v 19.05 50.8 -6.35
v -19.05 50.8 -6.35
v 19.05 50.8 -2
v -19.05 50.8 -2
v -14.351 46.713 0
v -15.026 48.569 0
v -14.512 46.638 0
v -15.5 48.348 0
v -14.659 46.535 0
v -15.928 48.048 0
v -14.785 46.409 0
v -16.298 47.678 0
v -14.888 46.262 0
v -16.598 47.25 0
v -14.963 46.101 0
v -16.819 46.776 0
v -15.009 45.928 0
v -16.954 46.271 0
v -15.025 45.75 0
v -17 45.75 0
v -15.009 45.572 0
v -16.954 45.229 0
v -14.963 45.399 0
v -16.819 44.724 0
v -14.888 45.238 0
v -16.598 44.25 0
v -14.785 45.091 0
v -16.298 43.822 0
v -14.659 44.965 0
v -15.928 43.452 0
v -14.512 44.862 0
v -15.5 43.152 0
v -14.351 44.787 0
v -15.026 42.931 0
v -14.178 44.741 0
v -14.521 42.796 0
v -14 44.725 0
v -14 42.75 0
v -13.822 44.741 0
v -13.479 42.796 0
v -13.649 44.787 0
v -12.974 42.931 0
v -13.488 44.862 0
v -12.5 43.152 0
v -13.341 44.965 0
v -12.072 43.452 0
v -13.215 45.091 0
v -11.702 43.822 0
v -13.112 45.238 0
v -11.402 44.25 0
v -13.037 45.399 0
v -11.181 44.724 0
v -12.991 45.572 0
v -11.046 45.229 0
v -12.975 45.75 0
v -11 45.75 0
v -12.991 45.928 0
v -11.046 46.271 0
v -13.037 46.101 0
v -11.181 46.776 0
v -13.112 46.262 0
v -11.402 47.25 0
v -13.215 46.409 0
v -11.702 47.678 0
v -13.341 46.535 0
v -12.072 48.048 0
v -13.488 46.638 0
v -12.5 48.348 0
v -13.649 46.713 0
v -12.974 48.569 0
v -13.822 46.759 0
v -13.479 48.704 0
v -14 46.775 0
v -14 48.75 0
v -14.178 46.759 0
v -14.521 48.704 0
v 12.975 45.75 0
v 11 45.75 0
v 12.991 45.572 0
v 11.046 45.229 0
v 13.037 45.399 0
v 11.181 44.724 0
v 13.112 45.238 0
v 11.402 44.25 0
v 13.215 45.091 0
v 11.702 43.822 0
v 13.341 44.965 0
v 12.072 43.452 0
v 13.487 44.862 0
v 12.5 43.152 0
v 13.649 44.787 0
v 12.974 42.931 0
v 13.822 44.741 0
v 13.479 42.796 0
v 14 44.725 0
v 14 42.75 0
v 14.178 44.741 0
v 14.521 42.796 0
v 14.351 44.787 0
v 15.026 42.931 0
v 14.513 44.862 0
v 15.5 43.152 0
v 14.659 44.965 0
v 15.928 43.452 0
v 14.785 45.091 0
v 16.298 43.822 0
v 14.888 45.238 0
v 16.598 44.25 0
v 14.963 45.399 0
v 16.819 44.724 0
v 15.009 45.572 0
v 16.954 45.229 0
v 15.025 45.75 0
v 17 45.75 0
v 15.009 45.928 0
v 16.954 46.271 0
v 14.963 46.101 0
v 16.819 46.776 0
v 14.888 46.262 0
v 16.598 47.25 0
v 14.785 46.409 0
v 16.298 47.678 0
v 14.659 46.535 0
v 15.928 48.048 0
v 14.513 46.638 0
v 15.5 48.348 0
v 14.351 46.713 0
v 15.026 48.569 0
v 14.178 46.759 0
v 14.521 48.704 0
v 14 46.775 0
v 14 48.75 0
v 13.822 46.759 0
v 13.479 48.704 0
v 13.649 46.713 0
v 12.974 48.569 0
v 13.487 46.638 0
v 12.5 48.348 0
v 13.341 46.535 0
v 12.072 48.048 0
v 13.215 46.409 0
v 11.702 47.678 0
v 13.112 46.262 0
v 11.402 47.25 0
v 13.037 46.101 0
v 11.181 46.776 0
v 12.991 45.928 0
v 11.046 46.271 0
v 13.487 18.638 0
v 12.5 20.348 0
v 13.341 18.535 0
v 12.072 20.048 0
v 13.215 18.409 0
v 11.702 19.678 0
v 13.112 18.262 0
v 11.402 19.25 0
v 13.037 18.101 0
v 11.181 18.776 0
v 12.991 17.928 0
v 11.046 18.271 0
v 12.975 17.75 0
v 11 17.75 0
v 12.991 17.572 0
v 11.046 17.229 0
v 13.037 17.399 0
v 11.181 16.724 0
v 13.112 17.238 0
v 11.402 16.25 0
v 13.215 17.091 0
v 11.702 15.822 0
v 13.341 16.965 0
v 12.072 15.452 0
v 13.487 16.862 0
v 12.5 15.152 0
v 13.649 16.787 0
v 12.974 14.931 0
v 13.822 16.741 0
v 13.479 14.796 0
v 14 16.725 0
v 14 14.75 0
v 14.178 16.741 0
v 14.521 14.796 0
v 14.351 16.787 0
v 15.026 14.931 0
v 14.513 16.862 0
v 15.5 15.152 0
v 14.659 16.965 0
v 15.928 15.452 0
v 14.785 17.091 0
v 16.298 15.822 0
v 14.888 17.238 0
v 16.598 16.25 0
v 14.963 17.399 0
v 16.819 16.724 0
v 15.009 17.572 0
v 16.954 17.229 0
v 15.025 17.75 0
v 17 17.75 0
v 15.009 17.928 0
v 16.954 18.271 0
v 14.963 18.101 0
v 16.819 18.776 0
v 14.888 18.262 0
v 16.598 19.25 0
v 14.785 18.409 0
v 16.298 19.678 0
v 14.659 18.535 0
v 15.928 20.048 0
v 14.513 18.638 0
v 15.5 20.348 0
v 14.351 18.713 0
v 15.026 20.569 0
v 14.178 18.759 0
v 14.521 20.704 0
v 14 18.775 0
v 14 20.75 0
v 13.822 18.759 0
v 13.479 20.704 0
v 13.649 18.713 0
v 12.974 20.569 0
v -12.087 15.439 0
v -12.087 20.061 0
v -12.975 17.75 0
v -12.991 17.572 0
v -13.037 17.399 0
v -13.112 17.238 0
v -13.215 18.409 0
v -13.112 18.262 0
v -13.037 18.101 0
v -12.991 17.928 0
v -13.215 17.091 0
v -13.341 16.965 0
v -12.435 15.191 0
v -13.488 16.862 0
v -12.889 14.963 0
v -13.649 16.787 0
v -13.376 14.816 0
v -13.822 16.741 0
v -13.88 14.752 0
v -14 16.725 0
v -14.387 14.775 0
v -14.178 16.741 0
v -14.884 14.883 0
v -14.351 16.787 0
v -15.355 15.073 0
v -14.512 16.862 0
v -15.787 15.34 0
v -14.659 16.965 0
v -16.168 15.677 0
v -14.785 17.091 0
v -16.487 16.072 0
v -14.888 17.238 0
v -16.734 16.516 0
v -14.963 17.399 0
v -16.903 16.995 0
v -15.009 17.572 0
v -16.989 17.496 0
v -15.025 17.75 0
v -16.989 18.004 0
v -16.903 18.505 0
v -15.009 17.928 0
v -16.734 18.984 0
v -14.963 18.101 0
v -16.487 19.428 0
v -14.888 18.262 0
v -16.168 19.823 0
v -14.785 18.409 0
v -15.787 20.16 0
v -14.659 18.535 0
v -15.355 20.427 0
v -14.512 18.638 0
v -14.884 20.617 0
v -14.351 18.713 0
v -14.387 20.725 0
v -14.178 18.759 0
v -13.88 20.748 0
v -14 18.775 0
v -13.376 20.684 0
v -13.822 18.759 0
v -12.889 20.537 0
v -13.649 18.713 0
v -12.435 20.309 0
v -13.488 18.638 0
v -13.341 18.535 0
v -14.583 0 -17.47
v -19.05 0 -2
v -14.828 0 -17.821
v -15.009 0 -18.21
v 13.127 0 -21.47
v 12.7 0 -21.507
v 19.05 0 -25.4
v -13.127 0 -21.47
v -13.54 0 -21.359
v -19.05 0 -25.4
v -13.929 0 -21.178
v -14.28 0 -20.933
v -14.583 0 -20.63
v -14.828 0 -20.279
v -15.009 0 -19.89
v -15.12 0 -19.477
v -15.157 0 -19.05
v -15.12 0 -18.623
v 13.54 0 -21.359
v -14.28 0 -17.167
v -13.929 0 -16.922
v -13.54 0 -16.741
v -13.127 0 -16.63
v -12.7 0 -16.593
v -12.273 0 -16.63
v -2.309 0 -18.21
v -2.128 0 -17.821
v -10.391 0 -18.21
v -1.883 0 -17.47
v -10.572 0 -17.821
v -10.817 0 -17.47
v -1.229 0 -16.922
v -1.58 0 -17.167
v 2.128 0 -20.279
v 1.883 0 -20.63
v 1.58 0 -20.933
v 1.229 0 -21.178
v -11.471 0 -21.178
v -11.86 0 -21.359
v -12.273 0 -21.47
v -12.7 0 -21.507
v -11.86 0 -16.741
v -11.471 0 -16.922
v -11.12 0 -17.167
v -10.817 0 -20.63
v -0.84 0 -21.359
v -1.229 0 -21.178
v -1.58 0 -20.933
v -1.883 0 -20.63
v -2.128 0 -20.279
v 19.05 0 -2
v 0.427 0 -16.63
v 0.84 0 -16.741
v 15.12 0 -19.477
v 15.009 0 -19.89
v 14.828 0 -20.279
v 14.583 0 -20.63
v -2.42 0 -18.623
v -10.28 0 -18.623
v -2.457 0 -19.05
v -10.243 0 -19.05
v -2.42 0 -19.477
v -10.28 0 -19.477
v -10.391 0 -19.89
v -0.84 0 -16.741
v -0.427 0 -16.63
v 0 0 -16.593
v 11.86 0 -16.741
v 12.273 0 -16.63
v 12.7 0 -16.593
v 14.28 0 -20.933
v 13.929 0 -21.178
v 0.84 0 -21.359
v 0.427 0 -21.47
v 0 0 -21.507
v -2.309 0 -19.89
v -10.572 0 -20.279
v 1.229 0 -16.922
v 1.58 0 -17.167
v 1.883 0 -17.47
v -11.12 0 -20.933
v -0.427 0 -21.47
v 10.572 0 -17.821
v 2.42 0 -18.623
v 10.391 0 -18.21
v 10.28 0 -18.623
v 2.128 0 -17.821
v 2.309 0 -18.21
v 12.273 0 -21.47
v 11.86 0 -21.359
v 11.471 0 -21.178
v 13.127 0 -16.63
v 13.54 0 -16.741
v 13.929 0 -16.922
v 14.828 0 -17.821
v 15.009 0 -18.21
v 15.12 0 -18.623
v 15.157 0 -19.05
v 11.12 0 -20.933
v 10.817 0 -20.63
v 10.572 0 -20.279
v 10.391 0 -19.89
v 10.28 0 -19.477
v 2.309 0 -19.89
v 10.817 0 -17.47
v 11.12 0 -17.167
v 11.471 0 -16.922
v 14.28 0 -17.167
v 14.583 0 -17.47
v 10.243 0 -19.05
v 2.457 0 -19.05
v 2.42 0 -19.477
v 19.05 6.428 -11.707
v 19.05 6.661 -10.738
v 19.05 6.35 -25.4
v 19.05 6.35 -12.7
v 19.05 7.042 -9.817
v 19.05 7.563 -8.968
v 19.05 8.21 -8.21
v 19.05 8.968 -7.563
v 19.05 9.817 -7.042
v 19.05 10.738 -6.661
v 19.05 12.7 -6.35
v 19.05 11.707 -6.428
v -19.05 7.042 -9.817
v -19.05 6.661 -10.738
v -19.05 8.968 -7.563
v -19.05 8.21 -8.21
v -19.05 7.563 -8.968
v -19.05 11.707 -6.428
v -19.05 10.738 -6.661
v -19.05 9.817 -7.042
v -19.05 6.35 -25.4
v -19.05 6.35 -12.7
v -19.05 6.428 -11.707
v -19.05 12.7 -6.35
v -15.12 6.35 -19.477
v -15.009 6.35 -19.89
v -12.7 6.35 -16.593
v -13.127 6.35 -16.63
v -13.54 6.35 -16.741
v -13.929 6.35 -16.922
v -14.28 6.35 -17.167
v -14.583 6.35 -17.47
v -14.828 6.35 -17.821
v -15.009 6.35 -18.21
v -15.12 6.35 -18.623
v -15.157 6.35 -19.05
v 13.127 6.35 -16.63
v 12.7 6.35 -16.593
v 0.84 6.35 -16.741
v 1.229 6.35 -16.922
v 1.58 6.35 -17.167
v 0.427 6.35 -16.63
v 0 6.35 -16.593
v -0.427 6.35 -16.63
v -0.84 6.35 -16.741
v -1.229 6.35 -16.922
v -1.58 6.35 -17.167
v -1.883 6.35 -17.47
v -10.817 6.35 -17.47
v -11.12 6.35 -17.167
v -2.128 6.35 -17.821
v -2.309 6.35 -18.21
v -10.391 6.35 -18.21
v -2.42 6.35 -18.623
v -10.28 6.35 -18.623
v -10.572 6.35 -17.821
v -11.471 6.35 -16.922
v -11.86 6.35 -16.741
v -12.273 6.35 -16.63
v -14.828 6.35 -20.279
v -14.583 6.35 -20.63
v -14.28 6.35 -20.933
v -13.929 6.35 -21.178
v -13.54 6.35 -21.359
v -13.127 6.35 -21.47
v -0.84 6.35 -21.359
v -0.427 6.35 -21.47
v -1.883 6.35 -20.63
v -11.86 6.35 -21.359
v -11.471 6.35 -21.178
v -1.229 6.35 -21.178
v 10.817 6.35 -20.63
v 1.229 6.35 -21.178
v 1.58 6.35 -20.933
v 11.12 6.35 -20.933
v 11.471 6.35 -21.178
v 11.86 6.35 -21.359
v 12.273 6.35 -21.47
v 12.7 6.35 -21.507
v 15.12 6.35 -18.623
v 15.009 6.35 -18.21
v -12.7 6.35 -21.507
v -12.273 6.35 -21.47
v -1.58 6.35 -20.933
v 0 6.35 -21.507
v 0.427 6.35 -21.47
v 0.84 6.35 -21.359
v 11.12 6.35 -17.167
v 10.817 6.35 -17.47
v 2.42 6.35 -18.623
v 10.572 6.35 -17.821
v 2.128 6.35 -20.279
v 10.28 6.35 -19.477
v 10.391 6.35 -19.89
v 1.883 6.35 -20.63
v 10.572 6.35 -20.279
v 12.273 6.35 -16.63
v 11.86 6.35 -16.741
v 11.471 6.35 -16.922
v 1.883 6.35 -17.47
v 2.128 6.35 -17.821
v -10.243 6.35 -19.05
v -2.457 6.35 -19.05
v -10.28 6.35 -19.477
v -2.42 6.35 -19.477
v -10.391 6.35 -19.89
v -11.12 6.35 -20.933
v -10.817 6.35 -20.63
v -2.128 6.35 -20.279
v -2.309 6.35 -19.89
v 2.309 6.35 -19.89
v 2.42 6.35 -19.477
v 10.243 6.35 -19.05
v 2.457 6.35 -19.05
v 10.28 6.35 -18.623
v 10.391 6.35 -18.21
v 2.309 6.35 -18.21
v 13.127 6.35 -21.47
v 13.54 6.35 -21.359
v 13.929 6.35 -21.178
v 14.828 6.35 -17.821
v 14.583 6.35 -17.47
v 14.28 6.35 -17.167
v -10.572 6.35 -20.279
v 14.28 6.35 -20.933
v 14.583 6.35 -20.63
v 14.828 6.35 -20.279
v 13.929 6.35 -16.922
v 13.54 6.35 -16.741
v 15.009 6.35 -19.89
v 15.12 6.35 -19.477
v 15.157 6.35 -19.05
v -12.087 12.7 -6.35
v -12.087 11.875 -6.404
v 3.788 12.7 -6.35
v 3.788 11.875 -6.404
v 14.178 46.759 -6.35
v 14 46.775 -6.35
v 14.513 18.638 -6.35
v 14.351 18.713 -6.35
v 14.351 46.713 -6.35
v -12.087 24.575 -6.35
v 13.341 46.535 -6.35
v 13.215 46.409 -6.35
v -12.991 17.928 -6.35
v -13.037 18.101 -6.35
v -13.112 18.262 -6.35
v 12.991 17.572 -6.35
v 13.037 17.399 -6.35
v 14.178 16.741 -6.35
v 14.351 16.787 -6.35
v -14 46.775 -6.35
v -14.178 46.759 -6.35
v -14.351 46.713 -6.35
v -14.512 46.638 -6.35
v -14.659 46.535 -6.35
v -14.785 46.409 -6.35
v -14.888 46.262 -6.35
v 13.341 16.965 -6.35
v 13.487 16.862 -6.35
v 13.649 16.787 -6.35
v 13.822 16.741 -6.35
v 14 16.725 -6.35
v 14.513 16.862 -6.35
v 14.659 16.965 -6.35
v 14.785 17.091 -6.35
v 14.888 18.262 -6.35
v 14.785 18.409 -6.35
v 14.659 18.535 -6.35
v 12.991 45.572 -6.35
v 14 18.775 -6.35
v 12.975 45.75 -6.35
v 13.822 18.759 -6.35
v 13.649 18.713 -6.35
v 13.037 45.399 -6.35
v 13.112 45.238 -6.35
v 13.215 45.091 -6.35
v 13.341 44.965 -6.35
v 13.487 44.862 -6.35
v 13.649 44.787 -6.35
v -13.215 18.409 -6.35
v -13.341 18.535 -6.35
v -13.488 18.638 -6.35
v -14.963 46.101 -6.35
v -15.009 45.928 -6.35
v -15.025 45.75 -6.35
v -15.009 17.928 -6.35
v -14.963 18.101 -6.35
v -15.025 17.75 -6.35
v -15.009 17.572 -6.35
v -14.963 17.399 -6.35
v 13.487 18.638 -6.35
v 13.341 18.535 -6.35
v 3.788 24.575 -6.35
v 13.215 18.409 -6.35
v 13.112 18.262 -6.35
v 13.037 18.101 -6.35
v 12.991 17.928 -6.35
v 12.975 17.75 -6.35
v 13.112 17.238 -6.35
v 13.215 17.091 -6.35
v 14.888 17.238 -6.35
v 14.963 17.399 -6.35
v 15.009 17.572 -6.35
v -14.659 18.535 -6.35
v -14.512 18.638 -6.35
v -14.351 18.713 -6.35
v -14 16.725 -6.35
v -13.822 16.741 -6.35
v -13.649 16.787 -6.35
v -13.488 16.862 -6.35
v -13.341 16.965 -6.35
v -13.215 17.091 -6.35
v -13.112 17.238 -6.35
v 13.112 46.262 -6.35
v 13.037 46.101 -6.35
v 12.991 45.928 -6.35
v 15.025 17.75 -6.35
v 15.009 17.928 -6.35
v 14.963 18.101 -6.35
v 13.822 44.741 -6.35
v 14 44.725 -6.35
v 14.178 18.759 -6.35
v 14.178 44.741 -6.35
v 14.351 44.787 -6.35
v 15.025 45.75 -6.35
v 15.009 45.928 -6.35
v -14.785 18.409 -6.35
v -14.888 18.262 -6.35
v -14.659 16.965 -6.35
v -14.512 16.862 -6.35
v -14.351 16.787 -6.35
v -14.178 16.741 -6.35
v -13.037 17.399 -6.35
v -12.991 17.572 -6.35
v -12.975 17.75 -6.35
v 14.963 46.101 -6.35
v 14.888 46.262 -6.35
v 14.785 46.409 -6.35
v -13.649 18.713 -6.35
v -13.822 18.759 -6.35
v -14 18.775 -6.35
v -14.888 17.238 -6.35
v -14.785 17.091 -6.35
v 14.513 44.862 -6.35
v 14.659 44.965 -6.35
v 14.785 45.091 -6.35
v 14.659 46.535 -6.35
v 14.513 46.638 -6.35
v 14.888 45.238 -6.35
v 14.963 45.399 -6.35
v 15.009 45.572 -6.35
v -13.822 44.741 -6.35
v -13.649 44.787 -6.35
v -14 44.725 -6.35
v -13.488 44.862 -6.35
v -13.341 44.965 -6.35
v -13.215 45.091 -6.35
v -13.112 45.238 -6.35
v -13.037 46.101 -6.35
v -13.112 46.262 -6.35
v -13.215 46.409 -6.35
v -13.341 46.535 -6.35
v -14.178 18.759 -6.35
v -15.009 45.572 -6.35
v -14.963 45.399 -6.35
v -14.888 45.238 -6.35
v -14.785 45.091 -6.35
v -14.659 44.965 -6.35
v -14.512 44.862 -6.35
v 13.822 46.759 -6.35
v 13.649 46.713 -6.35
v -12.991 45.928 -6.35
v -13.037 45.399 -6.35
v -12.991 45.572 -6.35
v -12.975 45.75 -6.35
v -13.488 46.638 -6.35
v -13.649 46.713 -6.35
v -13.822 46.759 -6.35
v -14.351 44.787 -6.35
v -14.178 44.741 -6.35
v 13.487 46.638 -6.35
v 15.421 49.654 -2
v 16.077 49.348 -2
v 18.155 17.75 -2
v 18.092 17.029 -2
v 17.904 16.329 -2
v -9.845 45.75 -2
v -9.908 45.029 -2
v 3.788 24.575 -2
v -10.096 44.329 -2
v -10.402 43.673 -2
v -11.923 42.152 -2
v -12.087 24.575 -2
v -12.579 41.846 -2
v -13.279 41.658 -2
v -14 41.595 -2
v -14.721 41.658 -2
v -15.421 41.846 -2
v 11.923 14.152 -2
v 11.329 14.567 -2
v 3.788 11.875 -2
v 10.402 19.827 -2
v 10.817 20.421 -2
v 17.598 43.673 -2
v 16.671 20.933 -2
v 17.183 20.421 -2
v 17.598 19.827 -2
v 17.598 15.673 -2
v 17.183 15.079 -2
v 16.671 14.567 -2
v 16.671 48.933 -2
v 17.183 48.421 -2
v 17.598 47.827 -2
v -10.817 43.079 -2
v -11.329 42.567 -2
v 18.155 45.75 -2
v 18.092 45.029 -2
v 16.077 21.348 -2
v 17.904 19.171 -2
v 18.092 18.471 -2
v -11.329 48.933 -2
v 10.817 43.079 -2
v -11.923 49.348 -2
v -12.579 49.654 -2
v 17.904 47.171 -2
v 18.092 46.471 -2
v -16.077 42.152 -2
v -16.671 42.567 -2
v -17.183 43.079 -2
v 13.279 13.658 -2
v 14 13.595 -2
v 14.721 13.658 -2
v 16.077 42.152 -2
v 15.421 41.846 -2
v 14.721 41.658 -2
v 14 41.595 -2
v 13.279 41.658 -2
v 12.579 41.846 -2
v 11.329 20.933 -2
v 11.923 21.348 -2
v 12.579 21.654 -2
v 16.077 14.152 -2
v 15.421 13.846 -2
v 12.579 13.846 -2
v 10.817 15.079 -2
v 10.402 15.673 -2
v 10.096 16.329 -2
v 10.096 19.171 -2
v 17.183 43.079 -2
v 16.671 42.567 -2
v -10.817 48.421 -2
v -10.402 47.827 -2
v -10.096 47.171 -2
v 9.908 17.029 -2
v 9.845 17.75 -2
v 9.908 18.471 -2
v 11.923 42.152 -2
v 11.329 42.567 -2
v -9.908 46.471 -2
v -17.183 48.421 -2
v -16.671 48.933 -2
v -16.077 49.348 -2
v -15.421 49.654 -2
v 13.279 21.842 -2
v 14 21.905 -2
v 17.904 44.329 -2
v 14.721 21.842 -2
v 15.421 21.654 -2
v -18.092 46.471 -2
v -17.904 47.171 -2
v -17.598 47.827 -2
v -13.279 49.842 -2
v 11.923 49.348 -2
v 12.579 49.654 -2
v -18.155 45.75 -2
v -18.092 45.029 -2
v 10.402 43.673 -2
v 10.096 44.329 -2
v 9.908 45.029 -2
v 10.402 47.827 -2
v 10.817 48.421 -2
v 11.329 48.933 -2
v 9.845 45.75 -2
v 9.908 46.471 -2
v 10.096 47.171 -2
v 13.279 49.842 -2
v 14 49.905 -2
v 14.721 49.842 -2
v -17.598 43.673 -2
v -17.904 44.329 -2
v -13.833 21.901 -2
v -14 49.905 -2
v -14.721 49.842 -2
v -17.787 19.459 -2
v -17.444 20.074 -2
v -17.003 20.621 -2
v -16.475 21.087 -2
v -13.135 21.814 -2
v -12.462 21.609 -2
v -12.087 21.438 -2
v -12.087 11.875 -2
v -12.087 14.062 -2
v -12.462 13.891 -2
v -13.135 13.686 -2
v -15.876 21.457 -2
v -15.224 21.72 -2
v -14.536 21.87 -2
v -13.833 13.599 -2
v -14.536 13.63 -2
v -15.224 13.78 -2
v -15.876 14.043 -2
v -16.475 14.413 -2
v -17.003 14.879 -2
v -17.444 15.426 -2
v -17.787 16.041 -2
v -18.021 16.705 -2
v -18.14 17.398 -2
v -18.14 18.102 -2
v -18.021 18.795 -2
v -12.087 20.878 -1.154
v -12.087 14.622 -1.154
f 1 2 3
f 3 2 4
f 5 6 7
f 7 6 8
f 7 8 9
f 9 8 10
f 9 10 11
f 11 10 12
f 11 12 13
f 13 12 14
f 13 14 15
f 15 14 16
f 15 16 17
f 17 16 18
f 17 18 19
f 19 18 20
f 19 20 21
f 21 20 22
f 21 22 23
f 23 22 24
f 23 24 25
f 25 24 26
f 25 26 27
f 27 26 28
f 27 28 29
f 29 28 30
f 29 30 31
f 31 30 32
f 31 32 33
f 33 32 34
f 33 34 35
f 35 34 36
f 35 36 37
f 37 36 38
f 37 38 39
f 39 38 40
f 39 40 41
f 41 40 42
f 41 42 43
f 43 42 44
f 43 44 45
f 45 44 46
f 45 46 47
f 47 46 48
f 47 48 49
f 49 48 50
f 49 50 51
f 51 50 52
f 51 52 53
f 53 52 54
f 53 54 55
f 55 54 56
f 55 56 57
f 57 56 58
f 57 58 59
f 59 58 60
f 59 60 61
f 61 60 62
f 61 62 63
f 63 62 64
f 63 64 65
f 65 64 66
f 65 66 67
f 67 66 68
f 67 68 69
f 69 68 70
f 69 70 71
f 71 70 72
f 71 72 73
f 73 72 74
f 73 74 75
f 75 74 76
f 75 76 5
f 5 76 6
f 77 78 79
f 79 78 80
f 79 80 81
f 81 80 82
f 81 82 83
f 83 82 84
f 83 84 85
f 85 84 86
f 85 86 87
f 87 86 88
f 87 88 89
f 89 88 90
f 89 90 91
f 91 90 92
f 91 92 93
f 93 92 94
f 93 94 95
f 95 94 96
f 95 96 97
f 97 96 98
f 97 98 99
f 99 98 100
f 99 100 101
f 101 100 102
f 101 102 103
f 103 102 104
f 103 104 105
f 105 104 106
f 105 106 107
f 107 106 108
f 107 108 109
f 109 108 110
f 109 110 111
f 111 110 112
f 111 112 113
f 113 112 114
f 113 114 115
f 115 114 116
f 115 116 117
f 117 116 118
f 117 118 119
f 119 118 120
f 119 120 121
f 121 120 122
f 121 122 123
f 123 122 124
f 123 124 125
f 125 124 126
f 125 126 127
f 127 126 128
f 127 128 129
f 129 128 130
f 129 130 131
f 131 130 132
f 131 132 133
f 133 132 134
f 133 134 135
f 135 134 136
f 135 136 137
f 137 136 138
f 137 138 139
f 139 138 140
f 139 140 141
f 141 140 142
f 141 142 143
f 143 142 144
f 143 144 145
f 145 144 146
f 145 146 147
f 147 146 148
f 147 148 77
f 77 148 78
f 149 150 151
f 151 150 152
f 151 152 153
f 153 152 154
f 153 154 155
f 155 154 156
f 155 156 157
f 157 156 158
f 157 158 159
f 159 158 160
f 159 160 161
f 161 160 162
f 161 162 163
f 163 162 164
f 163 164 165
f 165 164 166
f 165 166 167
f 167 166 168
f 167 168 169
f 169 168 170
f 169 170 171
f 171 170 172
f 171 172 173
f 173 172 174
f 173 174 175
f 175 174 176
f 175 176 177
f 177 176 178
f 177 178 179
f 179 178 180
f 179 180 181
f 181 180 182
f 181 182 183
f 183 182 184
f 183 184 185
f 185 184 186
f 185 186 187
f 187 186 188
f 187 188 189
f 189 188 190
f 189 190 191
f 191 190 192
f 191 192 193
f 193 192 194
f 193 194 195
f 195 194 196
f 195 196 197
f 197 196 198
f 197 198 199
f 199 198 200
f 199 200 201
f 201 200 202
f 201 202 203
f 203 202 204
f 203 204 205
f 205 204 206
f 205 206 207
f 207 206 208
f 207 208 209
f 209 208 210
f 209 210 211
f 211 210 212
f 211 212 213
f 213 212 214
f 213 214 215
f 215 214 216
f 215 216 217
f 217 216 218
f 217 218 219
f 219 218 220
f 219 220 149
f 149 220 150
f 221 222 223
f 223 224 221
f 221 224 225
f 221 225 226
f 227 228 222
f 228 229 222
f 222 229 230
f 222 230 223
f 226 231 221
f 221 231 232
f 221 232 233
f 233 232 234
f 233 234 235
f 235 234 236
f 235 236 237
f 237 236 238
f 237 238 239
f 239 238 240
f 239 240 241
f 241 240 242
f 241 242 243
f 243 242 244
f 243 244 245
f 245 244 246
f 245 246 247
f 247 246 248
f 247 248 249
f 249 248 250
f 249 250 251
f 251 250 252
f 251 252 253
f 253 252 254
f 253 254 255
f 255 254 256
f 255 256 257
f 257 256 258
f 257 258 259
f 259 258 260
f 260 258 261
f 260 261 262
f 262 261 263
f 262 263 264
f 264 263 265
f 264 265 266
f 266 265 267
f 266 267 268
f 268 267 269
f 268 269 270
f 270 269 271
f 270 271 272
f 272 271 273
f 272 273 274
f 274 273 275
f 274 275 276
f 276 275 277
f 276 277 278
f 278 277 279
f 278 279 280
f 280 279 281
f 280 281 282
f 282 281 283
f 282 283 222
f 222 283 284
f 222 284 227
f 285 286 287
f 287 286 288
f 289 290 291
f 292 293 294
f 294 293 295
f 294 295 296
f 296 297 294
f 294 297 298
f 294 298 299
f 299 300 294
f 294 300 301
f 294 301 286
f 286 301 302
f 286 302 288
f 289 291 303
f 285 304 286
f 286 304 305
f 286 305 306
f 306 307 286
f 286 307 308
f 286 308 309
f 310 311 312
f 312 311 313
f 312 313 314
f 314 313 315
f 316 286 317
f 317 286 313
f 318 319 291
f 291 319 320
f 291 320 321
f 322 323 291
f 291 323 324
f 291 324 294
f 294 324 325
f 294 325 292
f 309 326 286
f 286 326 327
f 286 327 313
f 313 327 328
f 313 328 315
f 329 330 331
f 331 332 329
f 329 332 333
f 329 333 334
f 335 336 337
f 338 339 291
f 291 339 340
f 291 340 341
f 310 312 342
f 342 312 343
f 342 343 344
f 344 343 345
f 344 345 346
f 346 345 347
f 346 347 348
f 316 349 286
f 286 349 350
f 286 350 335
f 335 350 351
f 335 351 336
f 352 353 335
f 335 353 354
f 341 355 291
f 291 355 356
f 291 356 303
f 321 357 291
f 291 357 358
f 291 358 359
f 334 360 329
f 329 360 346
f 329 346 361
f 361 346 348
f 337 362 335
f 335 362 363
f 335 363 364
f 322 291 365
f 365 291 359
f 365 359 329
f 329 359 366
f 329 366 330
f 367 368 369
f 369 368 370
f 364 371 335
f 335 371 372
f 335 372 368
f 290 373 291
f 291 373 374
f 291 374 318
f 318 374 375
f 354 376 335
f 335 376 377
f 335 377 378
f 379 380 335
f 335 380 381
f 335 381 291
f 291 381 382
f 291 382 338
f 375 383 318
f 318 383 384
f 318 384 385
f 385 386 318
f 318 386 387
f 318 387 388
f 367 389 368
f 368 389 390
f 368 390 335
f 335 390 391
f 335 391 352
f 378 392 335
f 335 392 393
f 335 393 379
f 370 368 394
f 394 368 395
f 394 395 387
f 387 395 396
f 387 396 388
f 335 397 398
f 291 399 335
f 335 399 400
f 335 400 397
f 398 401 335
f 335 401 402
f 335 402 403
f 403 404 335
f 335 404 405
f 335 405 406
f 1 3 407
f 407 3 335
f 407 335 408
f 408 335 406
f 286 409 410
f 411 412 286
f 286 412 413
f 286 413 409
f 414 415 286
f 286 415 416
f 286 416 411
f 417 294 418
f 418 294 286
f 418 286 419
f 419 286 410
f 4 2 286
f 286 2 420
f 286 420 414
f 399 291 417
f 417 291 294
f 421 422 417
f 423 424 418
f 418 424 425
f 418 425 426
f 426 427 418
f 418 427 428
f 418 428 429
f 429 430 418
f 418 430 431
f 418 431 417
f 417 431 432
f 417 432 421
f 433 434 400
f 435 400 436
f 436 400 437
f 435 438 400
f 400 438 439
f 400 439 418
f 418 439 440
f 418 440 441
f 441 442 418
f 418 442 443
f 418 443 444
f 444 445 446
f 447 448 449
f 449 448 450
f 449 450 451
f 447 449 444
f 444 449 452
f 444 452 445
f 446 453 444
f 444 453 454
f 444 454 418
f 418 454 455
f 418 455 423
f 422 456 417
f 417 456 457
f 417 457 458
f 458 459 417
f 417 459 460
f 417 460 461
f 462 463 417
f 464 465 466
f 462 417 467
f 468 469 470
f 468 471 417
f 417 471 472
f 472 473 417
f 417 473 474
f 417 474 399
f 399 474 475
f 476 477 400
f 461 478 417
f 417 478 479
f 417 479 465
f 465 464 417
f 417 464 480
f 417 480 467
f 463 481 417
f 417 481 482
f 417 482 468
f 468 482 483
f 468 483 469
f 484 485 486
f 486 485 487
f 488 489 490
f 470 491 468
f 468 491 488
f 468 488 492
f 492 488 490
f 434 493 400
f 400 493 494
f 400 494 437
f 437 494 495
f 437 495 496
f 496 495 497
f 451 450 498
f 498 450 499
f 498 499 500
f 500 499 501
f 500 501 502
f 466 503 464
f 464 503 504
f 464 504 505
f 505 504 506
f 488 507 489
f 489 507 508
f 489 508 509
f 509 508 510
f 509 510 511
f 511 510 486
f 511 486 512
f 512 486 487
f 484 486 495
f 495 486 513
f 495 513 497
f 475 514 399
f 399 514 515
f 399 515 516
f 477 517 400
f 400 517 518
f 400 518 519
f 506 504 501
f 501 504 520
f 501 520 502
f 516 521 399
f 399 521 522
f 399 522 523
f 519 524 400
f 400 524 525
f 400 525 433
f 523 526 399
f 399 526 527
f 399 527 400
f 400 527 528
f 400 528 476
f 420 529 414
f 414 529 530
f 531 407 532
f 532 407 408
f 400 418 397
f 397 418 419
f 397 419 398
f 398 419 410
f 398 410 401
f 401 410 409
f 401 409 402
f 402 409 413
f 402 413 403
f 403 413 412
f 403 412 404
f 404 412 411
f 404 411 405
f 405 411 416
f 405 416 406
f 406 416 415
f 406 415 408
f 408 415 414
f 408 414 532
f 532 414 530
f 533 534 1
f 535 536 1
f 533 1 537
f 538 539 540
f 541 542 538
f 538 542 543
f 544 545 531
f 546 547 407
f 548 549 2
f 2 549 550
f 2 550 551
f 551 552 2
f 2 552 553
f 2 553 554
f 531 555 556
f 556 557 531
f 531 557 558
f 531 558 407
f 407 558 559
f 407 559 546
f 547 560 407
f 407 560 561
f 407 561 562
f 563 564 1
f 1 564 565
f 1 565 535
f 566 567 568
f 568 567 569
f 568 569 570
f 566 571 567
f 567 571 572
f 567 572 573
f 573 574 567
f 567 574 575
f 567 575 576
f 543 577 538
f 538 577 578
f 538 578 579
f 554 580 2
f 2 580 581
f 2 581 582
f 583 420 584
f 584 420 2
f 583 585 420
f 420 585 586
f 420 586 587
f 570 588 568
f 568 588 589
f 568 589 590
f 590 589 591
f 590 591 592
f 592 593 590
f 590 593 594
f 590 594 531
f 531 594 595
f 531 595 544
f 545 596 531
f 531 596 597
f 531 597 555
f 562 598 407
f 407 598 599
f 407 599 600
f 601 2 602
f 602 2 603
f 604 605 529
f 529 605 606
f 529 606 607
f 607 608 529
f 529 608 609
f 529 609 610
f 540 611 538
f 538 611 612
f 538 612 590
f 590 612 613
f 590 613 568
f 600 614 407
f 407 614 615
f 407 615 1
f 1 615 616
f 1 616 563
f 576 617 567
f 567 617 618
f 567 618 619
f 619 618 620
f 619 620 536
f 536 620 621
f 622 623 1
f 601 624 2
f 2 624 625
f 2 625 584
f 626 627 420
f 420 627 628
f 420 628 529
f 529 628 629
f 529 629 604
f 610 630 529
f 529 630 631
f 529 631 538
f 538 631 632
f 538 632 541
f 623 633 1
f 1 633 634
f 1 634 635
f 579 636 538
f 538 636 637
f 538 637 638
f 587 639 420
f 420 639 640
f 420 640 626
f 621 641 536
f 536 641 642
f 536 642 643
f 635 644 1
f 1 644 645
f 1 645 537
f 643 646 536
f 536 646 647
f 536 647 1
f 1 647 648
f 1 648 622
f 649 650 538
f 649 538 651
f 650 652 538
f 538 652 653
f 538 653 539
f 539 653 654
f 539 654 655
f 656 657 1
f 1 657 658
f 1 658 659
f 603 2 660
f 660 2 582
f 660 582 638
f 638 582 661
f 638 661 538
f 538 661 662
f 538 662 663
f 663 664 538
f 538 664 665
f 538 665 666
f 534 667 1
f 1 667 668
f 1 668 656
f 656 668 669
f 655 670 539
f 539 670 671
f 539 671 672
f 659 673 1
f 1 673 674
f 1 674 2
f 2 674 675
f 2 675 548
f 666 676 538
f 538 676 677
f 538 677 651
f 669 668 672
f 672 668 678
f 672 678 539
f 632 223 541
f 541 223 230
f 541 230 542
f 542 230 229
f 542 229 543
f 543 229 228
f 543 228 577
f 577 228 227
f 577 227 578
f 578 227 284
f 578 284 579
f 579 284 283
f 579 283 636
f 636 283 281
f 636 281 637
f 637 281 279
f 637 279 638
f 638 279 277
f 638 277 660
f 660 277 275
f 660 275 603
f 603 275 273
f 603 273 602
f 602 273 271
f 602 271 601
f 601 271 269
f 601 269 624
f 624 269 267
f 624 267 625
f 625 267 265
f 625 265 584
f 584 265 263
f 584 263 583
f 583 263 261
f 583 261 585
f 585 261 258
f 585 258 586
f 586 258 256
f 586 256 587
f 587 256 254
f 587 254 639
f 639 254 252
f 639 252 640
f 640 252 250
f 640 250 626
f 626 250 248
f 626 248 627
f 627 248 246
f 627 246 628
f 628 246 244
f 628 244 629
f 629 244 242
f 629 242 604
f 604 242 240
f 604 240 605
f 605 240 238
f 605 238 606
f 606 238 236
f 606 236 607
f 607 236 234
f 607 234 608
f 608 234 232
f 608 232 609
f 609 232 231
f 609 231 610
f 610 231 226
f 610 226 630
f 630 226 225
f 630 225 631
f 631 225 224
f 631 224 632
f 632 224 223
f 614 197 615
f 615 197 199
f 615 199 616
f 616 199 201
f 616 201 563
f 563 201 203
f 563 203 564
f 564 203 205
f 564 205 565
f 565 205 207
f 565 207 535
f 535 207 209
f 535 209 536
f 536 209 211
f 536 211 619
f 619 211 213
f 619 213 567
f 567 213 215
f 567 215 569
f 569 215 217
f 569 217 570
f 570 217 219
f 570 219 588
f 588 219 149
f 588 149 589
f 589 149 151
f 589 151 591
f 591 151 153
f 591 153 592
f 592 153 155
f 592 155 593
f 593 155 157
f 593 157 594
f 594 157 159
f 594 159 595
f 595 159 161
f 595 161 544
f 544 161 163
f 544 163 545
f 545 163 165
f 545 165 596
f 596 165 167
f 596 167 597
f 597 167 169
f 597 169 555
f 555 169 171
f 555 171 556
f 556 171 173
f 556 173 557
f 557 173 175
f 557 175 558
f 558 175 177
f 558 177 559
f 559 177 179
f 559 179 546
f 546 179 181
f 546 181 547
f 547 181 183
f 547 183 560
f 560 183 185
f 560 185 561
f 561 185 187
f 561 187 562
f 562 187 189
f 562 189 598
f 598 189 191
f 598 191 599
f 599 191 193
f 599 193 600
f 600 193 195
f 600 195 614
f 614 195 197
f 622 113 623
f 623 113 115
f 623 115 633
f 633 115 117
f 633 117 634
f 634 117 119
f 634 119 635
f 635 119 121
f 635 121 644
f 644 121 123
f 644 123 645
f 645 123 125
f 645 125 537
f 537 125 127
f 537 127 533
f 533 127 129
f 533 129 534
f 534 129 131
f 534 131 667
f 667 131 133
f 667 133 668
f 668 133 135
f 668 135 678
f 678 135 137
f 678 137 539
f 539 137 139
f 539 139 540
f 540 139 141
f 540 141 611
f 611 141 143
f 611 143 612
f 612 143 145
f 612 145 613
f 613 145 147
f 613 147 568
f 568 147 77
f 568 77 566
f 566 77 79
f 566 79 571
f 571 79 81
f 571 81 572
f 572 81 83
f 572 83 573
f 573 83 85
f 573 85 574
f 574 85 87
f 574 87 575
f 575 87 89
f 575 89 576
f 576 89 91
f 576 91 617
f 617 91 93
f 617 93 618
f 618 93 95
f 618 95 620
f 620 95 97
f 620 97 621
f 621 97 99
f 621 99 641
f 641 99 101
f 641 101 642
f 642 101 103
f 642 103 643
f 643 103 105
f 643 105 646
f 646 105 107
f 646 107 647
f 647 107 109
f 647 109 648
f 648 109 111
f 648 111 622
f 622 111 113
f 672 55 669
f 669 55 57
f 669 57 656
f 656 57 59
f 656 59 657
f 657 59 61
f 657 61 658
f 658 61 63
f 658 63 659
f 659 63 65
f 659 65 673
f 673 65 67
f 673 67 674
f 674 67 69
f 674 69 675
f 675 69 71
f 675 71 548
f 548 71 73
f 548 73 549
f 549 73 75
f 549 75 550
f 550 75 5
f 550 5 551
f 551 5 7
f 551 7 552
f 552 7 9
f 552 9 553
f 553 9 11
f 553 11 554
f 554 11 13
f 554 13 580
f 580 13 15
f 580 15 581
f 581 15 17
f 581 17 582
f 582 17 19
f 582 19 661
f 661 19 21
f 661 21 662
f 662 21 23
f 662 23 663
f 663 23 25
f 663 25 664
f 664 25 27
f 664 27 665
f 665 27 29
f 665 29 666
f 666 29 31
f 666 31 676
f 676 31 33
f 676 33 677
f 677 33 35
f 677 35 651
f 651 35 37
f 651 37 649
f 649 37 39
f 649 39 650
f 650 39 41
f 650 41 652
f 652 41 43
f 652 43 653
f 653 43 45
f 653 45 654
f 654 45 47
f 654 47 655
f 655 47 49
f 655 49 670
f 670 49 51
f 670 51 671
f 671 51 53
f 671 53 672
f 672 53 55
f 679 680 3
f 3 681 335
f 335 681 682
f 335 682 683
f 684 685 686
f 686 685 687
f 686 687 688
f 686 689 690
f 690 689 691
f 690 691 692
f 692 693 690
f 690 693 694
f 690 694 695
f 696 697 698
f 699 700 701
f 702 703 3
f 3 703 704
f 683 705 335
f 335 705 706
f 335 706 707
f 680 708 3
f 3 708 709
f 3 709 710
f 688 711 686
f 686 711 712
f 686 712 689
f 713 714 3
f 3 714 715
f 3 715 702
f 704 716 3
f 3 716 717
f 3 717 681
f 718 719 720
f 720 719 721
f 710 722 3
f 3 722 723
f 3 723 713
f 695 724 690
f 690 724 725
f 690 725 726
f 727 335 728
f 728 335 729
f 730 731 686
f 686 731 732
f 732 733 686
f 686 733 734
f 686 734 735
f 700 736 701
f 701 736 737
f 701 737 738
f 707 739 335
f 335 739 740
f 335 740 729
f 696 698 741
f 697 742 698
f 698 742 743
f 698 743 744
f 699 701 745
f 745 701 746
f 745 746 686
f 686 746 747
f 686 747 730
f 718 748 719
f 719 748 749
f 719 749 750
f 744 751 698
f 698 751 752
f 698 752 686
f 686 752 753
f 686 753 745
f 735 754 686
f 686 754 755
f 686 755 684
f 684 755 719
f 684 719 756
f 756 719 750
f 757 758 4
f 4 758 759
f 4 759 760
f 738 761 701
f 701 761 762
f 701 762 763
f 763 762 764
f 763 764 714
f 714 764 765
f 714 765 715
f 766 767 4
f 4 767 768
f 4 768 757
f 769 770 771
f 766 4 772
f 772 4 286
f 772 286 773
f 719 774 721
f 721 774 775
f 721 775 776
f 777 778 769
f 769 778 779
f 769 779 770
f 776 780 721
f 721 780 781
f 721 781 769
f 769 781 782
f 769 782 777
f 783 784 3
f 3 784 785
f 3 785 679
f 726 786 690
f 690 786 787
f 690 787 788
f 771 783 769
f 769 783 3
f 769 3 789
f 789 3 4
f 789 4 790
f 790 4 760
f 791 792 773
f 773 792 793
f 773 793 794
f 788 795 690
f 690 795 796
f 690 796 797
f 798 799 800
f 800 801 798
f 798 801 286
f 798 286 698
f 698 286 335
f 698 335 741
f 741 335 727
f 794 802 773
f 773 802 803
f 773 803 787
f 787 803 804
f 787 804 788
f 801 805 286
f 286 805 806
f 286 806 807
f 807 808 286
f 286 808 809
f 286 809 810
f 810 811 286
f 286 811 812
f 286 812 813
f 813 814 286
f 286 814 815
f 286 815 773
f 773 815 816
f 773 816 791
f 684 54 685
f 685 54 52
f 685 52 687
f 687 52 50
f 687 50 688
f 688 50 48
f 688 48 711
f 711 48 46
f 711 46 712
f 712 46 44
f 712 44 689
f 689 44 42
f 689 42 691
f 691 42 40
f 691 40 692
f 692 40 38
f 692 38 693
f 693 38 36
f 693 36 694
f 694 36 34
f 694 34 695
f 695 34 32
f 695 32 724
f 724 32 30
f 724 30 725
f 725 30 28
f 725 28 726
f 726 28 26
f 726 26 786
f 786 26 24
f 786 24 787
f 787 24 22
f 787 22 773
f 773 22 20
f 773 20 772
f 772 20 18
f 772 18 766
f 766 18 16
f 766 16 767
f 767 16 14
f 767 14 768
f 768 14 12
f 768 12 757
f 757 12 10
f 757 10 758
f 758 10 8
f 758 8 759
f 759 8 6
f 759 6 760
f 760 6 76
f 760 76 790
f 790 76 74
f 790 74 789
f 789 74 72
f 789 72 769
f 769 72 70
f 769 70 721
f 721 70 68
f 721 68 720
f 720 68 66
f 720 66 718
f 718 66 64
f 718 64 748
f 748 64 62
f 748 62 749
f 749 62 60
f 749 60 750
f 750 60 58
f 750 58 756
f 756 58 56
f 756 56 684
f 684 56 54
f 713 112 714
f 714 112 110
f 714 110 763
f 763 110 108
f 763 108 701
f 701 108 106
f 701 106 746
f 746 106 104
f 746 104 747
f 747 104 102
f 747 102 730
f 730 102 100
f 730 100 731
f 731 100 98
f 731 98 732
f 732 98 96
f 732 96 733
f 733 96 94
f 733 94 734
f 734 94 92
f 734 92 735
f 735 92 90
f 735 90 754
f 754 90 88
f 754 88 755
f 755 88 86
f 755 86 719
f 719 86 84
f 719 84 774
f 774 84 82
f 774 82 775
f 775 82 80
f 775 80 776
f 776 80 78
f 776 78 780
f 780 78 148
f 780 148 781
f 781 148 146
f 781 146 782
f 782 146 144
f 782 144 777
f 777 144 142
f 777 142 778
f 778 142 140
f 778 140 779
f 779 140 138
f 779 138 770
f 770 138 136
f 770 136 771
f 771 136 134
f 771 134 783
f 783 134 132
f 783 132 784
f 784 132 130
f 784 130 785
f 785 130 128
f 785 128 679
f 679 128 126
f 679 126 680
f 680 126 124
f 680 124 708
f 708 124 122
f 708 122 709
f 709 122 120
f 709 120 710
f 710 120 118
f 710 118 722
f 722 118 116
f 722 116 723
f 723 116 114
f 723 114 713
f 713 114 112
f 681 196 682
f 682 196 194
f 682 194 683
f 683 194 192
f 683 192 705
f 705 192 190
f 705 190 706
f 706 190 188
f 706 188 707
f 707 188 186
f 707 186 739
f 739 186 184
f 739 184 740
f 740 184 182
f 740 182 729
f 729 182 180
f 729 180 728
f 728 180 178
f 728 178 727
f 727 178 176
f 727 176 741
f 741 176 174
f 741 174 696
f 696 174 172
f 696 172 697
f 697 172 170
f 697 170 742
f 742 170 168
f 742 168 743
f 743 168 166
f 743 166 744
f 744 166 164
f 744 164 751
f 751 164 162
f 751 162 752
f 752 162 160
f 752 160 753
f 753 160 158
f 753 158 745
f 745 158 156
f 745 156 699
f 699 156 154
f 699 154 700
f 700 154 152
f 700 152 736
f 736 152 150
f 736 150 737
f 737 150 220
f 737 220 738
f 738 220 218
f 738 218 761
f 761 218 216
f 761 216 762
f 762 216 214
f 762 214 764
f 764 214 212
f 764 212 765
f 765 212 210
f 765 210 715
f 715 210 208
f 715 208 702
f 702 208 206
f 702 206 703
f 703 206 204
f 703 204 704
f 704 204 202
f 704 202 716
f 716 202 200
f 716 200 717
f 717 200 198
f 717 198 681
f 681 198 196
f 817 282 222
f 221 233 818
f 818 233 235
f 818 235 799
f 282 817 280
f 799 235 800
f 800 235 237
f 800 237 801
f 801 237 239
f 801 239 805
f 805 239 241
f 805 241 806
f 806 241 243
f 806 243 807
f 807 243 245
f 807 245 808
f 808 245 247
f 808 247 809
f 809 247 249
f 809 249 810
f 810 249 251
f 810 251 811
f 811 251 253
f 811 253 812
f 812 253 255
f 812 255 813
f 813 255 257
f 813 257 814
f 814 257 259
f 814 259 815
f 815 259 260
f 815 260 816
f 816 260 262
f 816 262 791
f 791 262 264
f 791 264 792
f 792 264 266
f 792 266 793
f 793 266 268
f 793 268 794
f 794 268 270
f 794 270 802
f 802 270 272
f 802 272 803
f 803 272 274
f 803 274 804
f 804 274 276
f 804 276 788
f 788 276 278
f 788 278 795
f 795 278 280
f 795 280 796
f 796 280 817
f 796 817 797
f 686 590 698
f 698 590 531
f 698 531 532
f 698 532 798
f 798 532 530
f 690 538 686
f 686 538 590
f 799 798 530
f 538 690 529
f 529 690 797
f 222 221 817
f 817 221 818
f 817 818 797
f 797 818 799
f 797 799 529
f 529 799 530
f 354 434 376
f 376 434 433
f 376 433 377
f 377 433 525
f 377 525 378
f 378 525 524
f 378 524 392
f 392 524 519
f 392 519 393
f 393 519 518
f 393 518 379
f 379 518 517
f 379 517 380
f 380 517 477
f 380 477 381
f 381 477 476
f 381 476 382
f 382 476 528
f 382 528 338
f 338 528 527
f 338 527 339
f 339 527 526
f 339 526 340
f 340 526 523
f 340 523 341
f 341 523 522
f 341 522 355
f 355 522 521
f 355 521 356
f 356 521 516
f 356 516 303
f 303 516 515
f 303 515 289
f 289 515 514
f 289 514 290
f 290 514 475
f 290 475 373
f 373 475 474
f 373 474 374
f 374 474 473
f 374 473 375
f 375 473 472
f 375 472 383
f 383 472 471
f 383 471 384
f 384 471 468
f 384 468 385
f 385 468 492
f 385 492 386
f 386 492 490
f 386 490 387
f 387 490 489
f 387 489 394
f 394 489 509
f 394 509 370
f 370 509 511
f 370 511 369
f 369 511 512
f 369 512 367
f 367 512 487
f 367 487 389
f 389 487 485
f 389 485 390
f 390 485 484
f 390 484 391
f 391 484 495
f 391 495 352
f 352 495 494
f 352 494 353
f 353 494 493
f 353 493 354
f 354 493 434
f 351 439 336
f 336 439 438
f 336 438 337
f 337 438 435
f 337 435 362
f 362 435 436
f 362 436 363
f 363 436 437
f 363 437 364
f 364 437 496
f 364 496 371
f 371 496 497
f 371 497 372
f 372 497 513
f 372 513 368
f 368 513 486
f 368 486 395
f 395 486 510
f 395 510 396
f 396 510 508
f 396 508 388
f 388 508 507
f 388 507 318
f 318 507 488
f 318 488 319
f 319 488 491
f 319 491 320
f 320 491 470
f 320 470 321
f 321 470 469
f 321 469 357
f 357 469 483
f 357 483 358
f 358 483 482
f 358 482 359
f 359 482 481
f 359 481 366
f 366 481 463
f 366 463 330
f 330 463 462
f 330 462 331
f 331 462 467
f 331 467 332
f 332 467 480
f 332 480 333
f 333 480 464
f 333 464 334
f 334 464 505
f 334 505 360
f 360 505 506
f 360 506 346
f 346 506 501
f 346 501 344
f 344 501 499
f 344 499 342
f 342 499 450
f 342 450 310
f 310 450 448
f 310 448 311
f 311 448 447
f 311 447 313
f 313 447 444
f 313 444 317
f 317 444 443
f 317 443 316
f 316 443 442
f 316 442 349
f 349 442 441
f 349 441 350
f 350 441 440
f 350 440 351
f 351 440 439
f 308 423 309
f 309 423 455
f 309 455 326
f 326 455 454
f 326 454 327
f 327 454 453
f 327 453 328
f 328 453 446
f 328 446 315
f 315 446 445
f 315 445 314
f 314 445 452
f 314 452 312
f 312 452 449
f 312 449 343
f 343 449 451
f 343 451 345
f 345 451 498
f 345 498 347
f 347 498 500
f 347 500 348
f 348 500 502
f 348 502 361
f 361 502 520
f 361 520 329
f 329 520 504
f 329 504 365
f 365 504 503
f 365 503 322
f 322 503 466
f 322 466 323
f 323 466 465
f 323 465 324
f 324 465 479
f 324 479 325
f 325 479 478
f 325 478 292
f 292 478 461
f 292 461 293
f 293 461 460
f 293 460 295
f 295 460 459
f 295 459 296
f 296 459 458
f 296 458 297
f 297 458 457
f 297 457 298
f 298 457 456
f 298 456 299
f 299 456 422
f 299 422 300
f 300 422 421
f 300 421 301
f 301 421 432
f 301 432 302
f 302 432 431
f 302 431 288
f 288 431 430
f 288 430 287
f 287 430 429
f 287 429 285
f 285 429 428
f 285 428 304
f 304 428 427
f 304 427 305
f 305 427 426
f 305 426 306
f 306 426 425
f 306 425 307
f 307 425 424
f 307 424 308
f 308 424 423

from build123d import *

# Parameters (mm, degrees)
BOSS_EXTRUDE1_DEPTH          = 19.05
M2_5X0_45_TAPPED_HOLE1_D     = 2.05
SKETCH6_OUTSIDE_W            = 56.088
SKETCH6_OUTSIDE_H            = 68.788
SKETCH6_OUTSIDE_R            = 3
CUT_EXTRUDE1_DEPTH           = 2
CUT_EXTRUDE1_TAPER           = 30
SKETCH7_W                    = 15.875
SKETCH7_H                    = 12.7
CUT_EXTRUDE2_DEPTH           = 3.0000001
CUT_EXTRUDE2_DEPTH_BACK      = 24.4
F_10_0_1935_DIAMETER_HOLE1_D = 4.9149


with BuildPart() as part:
    # Sketch1 → Boss-Extrude1 (new body, symmetric)
    with BuildSketch(Plane(origin=(0, 0, 0), x_dir=(0, 0, -1), z_dir=(1, 0, 0))):
        with BuildLine():
            Line((25.4, 0), (0, 0))
            Line((0, 0), (0, 50.8))
            Line((0, 50.8), (6.35, 50.8))
            Line((6.35, 50.8), (6.35, 12.7))
            ThreePointArc((6.35, 12.7), (8.209871939, 8.209871939), (12.7, 6.35))
            Line((12.7, 6.35), (25.4, 6.35))
            Line((25.4, 6.35), (25.4, 0))
        make_face()
    extrude(amount=BOSS_EXTRUDE1_DEPTH, both=True)

    # M2.5x0.45 Tapped Hole1 (through all)
    with Locations(Plane.XY):
        with Locations((-14, 45.75), (14, 45.75), (14, 17.75), (-14, 17.75)):
            Hole(M2_5X0_45_TAPPED_HOLE1_D / 2)

    # Sketch6 outside → Cut-Extrude1 (cut)
    with BuildSketch(Plane.XY):
        with Locations((0, 25.4)):
            Rectangle(SKETCH6_OUTSIDE_W, SKETCH6_OUTSIDE_H)
        with Locations((-14, 45.75)):
            Circle(SKETCH6_OUTSIDE_R, mode=Mode.SUBTRACT)
        with Locations((14, 45.75)):
            Circle(SKETCH6_OUTSIDE_R, mode=Mode.SUBTRACT)
        with Locations((14, 17.75)):
            Circle(SKETCH6_OUTSIDE_R, mode=Mode.SUBTRACT)
        with Locations((-14, 17.75)):
            Circle(SKETCH6_OUTSIDE_R, mode=Mode.SUBTRACT)
    extrude(amount=-CUT_EXTRUDE1_DEPTH, taper=CUT_EXTRUDE1_TAPER, mode=Mode.SUBTRACT)

    # Sketch7 → Cut-Extrude2 (cut, two sides)
    with BuildSketch(Plane.XY.offset(-2)) as cut_extrude2_sk:
        with Locations((-4.15, 18.225)):
            Rectangle(SKETCH7_W, SKETCH7_H)
    extrude(amount=CUT_EXTRUDE2_DEPTH, mode=Mode.SUBTRACT)
    extrude(cut_extrude2_sk.sketch, amount=-CUT_EXTRUDE2_DEPTH_BACK, mode=Mode.SUBTRACT)

    # #10 (0.1935) Diameter Hole1 (through all)
    with Locations(Plane(origin=(0, 6.35, 0), x_dir=(1, 0, 0), z_dir=(0, 1, 0))):
        with Locations((-12.7, 19.05), (0, 19.05), (12.7, 19.05)):
            Hole(F_10_0_1935_DIAMETER_HOLE1_D / 2)


solid = part.part
